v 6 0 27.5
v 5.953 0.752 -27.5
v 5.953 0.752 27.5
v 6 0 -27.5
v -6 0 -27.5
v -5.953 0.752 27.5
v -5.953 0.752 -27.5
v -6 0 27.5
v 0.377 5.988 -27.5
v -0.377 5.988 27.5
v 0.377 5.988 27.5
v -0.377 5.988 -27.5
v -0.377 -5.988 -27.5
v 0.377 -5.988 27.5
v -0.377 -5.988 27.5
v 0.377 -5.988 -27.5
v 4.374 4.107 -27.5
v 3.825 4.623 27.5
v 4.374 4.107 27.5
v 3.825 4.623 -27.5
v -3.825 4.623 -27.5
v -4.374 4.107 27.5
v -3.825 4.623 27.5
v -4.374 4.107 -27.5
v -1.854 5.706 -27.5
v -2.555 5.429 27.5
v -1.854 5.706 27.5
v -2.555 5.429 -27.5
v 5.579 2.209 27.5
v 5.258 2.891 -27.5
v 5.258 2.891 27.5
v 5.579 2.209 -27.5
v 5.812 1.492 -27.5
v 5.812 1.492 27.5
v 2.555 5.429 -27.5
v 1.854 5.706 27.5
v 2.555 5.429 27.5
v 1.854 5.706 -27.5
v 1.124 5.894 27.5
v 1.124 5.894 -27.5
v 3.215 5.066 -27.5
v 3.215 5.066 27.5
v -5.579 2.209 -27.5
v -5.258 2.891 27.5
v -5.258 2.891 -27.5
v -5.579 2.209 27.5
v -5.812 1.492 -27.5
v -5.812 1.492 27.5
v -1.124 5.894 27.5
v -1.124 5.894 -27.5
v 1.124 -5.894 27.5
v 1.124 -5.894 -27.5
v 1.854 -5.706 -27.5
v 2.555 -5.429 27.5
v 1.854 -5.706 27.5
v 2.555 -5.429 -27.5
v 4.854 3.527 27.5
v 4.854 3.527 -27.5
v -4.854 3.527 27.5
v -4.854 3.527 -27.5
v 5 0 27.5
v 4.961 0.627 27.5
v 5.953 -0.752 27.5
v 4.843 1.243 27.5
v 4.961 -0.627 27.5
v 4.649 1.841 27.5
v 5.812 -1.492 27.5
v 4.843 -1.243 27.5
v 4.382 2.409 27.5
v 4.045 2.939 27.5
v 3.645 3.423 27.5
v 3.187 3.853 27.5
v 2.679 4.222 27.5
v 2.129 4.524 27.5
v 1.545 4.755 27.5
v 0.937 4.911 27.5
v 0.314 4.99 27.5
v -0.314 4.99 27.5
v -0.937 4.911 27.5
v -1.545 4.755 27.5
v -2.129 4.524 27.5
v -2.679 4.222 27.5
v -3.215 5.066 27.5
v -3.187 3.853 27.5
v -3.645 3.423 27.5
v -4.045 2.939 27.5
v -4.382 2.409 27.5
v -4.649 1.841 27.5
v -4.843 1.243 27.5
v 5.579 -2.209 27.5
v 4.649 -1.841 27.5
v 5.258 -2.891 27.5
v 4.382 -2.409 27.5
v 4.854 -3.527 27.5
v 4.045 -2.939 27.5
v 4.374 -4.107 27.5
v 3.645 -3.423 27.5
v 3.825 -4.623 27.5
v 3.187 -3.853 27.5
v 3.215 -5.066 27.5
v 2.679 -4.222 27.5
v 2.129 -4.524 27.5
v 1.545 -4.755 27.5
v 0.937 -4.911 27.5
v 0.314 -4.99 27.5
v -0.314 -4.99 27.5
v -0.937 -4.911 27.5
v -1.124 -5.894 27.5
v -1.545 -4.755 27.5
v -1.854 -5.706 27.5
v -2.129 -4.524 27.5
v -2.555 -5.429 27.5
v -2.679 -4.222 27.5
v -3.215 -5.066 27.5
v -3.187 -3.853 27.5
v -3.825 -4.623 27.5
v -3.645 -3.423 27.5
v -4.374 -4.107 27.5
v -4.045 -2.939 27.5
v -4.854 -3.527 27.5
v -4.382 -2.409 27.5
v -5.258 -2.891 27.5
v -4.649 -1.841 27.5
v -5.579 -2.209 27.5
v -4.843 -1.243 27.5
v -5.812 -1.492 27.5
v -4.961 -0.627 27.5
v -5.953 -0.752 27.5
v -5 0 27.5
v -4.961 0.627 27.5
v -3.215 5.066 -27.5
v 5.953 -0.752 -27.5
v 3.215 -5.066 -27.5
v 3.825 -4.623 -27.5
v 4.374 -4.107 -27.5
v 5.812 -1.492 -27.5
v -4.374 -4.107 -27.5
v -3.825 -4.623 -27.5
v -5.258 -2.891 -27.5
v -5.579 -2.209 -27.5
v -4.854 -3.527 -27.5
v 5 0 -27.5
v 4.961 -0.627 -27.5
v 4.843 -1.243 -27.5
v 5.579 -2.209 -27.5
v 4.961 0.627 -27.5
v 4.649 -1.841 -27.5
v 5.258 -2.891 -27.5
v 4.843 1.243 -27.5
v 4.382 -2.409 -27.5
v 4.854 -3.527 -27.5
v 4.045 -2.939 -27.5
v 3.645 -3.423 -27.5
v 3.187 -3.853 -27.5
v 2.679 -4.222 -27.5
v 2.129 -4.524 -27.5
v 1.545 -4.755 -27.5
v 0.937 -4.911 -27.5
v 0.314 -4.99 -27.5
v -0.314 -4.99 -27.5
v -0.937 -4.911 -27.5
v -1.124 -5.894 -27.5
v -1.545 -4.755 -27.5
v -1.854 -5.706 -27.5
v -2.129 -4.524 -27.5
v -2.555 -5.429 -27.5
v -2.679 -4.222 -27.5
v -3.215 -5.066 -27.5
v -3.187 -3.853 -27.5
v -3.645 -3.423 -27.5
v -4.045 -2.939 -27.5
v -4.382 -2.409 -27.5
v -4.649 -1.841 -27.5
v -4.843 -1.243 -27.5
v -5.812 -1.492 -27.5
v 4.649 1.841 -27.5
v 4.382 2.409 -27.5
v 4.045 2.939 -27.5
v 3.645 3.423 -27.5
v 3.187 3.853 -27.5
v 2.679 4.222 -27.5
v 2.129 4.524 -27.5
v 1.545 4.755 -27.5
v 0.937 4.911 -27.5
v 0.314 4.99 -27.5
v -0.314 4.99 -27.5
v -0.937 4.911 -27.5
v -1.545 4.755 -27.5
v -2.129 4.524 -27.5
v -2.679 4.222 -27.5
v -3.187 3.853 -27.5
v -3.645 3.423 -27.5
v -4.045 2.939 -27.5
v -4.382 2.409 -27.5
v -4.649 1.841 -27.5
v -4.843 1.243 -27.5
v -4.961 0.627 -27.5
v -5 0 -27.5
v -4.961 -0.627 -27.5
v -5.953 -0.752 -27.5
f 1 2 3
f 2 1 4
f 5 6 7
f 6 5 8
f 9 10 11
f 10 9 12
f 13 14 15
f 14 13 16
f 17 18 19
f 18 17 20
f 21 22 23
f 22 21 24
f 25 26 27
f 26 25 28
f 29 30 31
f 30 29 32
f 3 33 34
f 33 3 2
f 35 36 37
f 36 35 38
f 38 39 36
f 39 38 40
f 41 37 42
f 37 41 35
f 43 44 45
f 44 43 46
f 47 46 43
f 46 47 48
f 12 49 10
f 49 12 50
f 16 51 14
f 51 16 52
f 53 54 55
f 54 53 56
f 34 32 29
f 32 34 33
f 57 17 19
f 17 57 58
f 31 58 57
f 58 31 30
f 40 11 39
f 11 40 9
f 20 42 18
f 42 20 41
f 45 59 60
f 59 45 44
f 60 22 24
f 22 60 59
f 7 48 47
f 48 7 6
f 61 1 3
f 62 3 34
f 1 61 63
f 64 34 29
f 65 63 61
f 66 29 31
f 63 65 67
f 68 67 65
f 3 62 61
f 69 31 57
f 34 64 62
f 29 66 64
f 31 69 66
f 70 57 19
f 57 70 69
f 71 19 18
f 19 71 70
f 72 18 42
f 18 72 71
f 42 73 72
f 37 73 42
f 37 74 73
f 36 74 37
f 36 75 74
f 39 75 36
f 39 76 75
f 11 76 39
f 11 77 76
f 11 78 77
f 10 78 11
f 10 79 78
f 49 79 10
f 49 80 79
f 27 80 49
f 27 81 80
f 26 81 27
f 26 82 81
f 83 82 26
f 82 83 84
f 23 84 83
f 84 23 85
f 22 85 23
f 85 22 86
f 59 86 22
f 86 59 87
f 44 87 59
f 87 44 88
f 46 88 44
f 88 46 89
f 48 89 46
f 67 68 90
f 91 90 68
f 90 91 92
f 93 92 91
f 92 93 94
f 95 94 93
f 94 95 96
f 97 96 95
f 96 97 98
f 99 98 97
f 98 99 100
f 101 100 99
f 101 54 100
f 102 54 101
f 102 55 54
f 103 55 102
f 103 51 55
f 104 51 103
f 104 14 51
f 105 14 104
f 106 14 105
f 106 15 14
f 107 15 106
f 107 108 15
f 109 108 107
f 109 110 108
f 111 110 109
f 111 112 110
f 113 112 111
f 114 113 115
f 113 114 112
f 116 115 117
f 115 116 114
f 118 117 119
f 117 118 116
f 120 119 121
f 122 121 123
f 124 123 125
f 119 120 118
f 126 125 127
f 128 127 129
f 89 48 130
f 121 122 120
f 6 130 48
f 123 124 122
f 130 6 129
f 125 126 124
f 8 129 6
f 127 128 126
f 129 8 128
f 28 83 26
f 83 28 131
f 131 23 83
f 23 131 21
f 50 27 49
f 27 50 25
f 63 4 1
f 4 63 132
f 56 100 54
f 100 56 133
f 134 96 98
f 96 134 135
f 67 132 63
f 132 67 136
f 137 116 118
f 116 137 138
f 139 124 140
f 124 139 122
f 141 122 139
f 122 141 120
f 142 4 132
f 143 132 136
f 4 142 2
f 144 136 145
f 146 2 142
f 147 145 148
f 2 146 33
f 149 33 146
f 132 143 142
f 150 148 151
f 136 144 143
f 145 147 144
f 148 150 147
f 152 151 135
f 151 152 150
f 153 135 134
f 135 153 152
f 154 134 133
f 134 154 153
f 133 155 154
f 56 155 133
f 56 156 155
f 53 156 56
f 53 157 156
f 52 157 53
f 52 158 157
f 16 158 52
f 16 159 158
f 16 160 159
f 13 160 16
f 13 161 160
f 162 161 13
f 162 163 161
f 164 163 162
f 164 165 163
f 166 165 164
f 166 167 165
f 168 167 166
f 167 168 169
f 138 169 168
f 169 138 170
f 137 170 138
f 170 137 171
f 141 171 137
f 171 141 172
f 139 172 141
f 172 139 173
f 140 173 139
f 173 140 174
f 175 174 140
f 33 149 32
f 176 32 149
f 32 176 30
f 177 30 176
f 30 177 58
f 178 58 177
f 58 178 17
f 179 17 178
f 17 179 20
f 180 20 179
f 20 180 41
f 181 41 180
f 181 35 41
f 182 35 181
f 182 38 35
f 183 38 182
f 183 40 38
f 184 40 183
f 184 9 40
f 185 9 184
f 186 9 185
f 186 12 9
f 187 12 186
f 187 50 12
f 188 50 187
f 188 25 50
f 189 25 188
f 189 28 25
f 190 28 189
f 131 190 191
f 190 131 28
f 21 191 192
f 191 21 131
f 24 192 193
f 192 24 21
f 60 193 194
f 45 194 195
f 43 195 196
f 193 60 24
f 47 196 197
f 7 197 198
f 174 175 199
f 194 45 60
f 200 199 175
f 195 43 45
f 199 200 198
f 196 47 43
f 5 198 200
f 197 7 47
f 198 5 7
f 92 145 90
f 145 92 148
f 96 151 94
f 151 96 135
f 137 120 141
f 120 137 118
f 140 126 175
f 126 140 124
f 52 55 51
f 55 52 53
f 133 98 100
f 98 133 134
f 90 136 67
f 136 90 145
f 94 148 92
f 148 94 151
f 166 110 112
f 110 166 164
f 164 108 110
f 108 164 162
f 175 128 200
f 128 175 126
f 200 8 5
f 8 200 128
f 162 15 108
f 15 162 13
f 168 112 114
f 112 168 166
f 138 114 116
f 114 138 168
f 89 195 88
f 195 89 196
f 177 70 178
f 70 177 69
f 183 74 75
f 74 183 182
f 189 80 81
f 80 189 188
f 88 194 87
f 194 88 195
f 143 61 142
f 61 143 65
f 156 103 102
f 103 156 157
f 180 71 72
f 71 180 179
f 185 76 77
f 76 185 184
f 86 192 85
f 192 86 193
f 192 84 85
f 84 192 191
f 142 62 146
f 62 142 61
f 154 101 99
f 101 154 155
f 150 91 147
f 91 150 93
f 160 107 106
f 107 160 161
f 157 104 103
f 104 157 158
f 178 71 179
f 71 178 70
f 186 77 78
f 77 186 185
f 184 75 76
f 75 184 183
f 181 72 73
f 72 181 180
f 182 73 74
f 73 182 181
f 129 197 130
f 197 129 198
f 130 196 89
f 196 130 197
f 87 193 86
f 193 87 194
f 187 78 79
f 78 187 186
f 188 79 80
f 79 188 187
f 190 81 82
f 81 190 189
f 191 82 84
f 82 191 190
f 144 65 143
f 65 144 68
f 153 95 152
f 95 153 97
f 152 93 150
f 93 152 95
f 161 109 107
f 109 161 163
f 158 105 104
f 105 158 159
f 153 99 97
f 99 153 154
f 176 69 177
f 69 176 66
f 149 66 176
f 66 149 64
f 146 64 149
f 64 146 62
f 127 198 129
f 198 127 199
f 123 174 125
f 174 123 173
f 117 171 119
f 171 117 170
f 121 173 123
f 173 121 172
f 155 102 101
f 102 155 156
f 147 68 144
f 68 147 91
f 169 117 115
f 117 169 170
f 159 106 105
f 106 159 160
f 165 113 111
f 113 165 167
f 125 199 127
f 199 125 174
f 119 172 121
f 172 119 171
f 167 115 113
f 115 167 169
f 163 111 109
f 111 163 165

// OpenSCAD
$fn = 50;


difference() {
	union() {
		translate(v = [0, 0, -27.5000000000]) {
			cylinder(h = 55, r = 6.0000000000);
		}
	}
	union() {
		translate(v = [0, 0, -100.0000000000]) {
			cylinder(h = 200, r = 5);
		}
	}
}
